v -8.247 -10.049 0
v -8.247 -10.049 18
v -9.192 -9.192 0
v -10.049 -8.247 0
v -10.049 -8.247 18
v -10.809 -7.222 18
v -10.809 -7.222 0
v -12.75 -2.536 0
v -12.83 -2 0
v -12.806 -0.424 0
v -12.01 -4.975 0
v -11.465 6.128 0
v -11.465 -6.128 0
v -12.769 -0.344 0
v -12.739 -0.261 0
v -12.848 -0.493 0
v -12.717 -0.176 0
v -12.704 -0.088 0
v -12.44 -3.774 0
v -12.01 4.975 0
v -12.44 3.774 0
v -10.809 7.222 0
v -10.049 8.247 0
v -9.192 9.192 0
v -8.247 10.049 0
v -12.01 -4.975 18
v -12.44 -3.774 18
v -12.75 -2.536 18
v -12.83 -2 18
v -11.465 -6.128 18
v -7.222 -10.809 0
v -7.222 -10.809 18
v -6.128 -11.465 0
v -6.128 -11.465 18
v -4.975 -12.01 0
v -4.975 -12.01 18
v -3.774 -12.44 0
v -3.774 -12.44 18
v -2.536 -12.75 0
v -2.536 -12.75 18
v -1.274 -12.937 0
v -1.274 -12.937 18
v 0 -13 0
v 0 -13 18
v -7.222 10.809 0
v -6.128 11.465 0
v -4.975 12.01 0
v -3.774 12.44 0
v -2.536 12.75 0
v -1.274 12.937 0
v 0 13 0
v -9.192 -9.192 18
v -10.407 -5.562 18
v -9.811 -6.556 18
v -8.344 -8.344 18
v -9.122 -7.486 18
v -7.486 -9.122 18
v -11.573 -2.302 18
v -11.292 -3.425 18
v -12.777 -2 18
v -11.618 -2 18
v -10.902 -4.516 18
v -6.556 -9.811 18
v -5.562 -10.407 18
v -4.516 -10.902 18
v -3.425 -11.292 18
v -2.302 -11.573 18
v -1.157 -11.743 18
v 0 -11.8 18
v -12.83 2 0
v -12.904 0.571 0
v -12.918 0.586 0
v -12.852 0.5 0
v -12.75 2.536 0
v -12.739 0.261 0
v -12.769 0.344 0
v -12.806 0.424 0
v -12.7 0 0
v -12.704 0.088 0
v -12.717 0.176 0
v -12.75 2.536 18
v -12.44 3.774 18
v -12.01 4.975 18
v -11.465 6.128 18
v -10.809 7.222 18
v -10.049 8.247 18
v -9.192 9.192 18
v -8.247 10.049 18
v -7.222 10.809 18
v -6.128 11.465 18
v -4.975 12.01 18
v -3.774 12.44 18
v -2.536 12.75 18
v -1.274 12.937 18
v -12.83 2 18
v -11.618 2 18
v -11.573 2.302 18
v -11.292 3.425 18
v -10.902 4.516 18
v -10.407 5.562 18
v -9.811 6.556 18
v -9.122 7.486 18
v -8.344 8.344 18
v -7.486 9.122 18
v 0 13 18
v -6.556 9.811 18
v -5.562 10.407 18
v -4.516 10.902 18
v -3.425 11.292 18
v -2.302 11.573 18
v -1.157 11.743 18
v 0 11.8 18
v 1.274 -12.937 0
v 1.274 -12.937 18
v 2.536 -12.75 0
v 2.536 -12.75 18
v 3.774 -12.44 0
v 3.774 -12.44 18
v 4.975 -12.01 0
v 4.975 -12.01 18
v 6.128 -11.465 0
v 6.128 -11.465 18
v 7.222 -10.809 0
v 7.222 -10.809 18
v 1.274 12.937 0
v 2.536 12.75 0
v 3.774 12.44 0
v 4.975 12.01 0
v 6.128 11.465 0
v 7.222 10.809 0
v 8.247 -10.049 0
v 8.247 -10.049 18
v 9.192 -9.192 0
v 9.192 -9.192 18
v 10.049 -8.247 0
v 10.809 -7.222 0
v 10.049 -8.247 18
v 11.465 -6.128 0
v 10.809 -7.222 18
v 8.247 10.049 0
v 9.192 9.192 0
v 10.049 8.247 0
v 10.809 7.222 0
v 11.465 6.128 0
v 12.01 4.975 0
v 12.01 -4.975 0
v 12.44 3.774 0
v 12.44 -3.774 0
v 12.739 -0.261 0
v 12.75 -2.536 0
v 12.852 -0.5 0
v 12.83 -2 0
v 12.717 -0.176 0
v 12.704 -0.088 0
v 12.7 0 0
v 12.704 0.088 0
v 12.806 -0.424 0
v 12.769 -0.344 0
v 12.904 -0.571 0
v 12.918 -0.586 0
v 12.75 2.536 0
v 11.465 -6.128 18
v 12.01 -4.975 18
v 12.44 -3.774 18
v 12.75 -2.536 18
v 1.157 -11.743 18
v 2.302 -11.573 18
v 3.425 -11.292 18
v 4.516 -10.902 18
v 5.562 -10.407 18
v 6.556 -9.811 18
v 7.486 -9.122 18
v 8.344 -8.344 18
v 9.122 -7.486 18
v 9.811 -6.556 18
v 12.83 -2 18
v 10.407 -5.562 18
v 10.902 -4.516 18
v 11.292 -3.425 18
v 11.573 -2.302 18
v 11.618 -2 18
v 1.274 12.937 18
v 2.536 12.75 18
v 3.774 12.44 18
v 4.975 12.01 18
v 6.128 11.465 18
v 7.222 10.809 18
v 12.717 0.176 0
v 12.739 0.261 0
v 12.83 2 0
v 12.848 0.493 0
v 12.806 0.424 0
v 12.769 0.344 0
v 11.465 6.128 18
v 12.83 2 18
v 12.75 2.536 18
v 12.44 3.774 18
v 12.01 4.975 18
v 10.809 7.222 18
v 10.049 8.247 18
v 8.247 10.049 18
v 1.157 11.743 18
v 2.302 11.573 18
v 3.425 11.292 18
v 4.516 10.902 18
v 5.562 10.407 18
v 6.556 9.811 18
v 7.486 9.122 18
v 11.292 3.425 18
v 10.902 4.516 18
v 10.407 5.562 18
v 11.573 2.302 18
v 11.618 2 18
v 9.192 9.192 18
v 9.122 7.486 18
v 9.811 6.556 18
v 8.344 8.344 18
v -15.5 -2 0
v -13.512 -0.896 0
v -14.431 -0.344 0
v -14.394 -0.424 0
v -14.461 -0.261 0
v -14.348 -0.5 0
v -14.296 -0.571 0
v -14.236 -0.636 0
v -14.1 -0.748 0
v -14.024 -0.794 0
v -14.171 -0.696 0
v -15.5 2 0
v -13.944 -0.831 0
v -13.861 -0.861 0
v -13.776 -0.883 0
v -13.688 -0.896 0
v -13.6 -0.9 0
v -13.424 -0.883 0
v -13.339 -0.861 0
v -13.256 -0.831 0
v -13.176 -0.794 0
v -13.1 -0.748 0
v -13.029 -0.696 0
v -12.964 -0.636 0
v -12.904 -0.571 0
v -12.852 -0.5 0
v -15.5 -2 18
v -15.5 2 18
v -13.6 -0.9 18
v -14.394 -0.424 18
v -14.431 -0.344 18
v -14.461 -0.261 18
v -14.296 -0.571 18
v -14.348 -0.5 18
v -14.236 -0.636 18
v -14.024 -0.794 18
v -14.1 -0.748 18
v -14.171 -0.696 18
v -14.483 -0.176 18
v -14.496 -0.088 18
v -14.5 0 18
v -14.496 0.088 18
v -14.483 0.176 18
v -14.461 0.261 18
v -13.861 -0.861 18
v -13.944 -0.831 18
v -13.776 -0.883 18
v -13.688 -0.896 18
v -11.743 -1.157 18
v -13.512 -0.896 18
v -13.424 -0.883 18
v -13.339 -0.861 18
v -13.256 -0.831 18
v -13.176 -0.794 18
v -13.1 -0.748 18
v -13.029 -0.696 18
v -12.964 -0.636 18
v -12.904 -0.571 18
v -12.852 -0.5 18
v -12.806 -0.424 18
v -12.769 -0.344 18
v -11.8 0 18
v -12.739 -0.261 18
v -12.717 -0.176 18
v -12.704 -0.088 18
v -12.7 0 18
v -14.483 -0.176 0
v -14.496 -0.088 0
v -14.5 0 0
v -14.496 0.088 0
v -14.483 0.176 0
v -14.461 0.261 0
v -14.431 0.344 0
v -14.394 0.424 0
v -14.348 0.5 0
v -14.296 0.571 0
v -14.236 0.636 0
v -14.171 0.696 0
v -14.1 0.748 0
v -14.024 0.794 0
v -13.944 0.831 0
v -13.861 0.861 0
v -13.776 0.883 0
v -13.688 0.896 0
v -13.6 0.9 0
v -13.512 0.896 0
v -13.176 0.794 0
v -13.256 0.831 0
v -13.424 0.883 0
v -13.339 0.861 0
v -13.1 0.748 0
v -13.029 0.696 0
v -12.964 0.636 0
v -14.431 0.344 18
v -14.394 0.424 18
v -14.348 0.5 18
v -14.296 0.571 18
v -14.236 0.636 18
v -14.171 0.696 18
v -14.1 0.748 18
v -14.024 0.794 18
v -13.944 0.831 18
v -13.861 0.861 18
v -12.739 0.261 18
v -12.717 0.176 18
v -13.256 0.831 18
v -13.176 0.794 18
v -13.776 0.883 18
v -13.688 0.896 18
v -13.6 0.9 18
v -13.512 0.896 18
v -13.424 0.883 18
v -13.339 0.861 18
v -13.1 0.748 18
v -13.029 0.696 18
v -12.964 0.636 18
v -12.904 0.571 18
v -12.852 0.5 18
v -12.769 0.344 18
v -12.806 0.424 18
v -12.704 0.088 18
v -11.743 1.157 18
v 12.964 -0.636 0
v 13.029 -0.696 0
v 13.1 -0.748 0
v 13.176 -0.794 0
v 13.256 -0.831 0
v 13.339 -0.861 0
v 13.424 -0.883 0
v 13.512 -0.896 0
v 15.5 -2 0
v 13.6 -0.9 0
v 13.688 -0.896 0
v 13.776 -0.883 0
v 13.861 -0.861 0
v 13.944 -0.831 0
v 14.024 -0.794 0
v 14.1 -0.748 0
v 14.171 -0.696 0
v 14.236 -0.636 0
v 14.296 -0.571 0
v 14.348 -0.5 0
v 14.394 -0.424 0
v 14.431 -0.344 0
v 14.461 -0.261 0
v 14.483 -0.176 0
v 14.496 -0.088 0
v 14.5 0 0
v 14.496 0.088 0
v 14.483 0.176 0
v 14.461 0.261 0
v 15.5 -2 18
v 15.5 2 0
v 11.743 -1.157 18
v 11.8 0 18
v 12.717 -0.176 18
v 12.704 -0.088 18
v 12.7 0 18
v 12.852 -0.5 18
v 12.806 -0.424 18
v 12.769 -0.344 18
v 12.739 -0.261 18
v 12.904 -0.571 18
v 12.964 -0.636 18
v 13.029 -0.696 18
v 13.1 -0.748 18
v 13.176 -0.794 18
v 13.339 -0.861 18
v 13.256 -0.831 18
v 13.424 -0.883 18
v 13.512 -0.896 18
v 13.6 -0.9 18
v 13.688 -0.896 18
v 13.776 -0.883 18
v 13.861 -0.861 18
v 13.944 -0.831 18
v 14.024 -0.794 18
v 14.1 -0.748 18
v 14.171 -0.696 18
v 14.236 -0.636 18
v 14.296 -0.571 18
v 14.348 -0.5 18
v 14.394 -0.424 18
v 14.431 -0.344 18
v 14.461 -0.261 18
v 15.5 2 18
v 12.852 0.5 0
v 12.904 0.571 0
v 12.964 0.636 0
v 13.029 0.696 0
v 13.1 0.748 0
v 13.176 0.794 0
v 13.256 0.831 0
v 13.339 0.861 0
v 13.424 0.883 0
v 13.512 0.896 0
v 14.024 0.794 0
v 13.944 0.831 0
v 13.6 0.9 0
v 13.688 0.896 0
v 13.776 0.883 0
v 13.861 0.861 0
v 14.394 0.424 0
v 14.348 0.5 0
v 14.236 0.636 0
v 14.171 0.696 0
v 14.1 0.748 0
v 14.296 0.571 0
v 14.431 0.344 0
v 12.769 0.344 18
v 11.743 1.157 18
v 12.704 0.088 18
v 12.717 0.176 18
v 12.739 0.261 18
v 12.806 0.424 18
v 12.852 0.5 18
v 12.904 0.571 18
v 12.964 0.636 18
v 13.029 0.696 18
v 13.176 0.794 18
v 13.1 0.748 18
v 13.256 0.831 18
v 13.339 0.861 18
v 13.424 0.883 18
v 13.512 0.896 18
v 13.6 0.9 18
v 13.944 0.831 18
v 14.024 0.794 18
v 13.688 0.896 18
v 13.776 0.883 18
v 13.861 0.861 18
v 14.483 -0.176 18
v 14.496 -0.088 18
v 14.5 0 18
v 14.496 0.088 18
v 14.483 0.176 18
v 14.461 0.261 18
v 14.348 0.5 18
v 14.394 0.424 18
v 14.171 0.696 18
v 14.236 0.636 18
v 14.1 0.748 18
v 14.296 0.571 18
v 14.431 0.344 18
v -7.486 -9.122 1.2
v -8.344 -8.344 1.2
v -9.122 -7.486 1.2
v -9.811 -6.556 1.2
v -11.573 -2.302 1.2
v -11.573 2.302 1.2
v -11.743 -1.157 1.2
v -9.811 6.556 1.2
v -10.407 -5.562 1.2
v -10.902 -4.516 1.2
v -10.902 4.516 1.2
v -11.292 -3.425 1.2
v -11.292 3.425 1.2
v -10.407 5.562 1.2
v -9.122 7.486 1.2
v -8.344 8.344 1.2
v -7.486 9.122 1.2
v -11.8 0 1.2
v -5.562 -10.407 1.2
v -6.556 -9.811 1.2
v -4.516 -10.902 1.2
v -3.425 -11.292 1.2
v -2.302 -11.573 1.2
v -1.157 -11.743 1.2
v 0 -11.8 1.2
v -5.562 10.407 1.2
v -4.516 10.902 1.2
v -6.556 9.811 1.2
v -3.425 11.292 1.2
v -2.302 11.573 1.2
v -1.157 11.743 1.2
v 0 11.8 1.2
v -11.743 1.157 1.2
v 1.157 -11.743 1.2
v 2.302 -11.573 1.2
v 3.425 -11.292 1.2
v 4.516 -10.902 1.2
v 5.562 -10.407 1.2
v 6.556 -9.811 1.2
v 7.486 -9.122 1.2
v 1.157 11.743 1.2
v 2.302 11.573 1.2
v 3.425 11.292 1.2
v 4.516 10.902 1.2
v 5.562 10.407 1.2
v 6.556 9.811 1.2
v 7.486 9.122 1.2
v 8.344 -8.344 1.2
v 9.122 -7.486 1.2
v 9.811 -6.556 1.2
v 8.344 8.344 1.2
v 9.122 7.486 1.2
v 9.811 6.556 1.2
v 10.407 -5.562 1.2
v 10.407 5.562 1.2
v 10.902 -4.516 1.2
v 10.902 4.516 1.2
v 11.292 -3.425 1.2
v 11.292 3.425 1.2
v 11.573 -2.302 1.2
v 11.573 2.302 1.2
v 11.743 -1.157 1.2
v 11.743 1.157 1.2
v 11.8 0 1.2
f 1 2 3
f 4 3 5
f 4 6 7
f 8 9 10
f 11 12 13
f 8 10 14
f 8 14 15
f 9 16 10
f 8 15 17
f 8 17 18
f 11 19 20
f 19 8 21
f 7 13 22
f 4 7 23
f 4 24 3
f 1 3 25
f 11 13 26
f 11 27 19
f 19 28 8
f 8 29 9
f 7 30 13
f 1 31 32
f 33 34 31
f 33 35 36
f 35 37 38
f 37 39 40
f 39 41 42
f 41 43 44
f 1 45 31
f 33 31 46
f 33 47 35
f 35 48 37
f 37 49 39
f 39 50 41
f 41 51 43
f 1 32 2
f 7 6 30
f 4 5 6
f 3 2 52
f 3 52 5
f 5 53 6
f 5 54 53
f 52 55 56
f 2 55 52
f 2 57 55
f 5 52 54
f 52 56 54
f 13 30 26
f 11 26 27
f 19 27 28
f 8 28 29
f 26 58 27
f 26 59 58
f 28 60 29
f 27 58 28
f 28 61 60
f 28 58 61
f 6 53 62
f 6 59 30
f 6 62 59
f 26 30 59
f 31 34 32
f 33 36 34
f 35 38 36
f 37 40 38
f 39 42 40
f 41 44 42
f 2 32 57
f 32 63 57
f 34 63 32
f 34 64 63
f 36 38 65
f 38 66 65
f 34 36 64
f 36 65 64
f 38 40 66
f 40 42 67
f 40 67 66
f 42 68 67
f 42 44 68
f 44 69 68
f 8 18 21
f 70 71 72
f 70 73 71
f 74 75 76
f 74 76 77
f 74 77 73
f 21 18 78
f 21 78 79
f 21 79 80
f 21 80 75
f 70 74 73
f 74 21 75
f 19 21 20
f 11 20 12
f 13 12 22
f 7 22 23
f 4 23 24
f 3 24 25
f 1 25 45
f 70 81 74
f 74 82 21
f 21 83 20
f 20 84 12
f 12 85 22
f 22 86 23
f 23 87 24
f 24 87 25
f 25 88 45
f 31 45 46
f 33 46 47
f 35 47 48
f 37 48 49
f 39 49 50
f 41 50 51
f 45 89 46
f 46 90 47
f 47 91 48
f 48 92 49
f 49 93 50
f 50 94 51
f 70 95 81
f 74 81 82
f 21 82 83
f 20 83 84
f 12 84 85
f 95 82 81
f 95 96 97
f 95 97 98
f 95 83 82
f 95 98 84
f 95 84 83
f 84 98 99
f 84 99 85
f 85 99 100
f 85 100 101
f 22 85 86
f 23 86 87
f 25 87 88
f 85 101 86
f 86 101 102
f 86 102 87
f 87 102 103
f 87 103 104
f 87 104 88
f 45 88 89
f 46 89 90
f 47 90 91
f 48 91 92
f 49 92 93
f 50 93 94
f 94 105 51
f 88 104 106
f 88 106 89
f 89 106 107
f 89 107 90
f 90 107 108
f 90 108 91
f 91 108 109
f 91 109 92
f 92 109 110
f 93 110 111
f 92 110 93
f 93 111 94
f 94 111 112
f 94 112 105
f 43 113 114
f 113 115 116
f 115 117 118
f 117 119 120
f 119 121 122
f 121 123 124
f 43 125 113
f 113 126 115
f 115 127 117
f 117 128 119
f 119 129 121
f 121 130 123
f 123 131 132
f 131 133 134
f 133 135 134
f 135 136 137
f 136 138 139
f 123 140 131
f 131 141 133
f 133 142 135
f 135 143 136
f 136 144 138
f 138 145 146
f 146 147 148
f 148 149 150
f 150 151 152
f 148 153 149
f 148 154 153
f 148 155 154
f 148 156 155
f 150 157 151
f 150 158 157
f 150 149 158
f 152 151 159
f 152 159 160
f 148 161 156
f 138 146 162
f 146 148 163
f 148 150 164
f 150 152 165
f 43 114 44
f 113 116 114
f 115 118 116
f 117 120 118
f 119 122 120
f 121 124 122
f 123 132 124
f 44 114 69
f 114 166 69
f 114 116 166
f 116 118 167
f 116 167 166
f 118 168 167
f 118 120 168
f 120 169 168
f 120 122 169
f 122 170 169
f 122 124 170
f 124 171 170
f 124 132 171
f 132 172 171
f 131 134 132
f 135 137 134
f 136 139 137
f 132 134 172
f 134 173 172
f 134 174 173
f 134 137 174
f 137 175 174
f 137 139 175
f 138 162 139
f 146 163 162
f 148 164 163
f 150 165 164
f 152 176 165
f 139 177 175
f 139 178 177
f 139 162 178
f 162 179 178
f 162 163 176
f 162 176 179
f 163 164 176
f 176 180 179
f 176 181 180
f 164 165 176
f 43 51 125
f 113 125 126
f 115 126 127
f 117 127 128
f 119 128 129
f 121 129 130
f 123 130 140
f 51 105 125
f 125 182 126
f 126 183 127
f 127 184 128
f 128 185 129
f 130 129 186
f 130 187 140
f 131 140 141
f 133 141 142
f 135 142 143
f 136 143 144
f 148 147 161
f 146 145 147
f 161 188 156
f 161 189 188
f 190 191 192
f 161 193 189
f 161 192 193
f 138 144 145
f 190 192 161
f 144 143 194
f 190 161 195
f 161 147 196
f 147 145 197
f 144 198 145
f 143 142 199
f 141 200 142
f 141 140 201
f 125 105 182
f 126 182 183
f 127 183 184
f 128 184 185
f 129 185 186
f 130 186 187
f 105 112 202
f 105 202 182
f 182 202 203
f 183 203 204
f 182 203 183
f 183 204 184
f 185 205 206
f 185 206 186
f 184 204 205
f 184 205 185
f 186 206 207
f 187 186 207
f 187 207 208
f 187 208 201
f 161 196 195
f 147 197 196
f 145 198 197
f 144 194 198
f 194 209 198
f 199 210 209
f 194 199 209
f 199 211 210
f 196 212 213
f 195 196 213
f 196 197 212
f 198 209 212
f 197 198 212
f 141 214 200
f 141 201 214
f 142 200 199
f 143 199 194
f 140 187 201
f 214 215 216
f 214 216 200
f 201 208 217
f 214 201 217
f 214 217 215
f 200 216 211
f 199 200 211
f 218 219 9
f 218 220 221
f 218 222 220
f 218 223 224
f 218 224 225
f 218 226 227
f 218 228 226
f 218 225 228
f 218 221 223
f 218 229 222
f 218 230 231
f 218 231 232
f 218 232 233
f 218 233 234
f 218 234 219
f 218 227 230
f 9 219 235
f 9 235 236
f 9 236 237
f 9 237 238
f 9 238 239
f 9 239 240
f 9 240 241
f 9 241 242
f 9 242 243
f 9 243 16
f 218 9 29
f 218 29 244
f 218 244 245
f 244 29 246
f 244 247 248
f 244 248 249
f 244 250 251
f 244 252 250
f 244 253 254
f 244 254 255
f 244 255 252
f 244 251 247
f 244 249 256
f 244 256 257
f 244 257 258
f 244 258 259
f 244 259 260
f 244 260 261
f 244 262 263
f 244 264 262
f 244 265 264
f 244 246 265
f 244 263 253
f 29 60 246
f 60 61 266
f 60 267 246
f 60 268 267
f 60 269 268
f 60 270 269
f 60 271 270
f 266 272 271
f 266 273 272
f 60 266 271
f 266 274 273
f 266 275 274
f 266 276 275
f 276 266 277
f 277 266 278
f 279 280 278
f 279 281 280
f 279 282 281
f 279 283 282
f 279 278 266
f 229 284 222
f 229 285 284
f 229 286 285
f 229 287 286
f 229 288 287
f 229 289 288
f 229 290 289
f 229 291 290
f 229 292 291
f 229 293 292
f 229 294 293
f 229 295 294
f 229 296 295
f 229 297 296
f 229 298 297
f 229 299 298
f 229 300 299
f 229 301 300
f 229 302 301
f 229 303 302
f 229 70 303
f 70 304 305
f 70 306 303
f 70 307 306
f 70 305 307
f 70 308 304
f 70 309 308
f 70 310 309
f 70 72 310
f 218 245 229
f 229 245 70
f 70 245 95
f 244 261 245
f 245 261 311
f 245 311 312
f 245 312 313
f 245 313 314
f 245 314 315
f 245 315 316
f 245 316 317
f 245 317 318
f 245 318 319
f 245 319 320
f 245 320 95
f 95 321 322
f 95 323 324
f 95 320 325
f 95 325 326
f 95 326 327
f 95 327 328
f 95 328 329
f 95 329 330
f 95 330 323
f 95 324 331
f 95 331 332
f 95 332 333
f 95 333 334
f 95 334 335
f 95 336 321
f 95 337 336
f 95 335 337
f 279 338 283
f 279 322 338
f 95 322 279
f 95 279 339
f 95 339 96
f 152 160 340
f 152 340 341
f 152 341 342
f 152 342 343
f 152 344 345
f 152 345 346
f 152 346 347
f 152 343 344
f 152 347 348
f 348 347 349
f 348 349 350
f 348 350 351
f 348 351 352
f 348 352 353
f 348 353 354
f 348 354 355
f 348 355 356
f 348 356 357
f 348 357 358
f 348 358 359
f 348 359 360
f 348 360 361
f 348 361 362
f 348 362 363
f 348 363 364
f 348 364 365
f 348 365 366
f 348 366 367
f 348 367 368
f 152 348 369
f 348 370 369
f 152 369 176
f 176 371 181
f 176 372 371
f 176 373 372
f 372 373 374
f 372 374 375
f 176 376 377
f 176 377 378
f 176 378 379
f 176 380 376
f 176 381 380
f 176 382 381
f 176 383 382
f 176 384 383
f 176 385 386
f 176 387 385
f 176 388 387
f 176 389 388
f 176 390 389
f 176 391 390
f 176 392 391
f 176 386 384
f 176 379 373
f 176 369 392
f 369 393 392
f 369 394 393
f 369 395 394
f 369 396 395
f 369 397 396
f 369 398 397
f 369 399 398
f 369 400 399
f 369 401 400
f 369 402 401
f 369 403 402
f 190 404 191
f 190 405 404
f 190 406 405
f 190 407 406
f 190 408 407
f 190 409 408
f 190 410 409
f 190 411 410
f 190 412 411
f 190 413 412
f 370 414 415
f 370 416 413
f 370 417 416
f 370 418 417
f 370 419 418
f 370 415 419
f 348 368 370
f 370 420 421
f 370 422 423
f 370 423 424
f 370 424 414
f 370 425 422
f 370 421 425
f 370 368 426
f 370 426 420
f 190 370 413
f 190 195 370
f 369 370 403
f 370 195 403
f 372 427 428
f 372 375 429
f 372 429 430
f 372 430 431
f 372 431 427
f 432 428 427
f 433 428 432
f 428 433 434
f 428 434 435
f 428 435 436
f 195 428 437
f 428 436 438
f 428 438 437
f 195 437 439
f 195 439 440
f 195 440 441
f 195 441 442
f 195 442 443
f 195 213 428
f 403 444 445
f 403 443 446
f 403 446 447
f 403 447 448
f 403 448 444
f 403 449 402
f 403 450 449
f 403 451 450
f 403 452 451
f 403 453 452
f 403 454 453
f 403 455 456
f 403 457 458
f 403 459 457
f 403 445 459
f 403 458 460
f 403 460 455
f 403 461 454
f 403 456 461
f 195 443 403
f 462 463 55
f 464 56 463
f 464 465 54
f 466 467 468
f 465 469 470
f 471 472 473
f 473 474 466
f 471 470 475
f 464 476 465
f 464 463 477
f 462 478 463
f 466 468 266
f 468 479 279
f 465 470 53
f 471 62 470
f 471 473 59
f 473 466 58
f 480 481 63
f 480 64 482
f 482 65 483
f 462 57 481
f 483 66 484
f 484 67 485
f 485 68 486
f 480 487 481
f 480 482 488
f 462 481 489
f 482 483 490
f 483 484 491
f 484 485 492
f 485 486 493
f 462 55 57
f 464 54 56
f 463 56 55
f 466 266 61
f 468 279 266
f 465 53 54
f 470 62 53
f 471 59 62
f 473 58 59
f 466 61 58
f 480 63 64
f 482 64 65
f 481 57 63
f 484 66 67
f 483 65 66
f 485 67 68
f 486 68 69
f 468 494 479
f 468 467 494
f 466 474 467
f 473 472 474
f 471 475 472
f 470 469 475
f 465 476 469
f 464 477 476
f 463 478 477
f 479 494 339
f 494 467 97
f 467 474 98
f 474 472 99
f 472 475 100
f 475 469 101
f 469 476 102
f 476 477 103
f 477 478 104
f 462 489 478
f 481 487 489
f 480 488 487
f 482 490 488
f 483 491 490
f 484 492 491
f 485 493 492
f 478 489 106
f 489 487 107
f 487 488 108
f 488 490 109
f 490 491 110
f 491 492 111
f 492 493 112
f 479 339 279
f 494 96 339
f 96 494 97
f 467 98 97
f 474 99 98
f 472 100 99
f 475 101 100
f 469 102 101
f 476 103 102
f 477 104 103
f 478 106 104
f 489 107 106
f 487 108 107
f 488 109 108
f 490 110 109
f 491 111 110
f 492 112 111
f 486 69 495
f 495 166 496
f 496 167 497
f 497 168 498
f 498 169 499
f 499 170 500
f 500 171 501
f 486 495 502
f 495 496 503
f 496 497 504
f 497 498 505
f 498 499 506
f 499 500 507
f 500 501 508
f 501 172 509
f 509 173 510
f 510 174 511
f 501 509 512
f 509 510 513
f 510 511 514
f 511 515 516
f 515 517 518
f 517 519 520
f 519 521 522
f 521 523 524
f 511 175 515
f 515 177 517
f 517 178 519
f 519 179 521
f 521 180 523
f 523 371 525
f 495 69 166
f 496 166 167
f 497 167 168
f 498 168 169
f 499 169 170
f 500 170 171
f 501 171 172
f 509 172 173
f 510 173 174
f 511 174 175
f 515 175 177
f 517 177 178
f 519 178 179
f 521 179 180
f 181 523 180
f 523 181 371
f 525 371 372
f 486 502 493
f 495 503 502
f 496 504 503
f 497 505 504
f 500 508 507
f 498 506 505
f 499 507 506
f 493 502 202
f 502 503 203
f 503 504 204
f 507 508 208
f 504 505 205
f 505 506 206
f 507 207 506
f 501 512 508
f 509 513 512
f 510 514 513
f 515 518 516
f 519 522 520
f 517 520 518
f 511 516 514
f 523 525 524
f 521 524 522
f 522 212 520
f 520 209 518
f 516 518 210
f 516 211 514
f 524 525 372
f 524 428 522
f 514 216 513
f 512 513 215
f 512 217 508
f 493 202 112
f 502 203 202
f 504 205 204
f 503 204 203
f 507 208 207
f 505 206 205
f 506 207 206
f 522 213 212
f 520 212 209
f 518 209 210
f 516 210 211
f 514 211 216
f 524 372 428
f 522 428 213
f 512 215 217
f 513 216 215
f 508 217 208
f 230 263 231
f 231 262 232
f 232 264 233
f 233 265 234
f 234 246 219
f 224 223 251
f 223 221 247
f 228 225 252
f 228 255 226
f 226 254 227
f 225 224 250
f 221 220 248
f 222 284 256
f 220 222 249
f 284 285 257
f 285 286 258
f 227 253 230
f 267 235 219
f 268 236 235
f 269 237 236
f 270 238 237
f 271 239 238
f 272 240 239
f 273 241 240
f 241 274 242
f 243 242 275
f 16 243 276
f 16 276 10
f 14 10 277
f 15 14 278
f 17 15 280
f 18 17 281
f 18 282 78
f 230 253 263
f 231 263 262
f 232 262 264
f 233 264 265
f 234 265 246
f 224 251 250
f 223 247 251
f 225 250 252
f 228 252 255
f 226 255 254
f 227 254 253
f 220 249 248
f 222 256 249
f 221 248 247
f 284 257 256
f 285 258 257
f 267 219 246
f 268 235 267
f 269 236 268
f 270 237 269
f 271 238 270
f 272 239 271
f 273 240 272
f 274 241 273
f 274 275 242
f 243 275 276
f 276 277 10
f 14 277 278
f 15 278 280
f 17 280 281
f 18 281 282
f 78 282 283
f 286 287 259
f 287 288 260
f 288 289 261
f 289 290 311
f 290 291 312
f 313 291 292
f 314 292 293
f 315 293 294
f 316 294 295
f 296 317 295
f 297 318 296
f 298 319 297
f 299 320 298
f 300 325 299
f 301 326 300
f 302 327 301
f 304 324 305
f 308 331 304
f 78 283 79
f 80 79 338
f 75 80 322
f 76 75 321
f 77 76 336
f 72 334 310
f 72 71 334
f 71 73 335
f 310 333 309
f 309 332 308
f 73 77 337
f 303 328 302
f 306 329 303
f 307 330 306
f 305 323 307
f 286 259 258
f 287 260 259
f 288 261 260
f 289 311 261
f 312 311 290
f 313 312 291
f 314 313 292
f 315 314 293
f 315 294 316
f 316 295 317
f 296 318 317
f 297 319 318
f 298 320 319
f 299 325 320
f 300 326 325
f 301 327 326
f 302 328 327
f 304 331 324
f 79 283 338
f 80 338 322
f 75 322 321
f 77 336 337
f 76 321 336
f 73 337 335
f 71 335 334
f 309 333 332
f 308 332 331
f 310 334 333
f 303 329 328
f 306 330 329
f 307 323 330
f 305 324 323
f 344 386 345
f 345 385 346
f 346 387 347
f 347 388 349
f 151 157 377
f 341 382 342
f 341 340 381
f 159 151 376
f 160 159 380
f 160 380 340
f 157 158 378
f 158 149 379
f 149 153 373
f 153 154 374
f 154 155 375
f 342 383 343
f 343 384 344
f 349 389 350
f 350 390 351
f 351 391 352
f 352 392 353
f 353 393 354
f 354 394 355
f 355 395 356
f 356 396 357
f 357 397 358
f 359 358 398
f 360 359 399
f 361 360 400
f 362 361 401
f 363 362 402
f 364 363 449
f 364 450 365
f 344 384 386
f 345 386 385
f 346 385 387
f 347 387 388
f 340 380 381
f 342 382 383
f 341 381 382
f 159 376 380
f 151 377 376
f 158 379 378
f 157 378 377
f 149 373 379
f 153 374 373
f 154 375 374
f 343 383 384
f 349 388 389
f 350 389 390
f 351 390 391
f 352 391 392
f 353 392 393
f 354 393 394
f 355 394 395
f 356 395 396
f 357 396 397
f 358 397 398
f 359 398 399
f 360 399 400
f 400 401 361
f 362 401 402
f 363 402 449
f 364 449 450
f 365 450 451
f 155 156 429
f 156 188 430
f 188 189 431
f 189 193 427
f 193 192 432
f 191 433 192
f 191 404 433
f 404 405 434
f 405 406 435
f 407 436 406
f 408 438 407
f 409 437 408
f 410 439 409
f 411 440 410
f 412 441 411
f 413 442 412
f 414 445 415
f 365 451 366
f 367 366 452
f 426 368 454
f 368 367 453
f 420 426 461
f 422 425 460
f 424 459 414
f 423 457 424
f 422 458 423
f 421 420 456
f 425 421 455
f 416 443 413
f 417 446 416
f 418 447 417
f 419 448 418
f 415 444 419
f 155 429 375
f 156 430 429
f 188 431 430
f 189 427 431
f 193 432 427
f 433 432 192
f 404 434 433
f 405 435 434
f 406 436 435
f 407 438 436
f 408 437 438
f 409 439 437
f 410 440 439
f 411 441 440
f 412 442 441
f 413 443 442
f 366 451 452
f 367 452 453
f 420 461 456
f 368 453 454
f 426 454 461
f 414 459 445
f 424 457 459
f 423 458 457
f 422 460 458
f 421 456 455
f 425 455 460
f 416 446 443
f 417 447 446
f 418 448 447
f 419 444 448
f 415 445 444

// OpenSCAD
// Toccata stage-0 C14a - 추 컵 (DW·스프링·캡스턴 토크) (generated by make_stage0.py; print orientation, z = build direction)
$fn = 64;
difference(){
union(){
translate([0.0000,0.0000,0.0000]) cylinder(h=18.0000, d=26.0000, $fn=64);
translate([-6.0000,-6.0000,0.0000]) cube([12.0000,12.0000,1.0000]);
translate([-15.5000,-2.0000,0.0000]) cube([4.5000,4.0000,18.0000]);
translate([11.0000,-2.0000,0.0000]) cube([4.5000,4.0000,18.0000]);
}
translate([0.0000,0.0000,1.2000]) cylinder(h=17.8000, d=23.6000, $fn=64);
translate([-13.6000,0.0000,-1.0000]) cylinder(h=20.0000, d=1.8000, $fn=64);
translate([13.6000,0.0000,-1.0000]) cylinder(h=20.0000, d=1.8000, $fn=64);
}
